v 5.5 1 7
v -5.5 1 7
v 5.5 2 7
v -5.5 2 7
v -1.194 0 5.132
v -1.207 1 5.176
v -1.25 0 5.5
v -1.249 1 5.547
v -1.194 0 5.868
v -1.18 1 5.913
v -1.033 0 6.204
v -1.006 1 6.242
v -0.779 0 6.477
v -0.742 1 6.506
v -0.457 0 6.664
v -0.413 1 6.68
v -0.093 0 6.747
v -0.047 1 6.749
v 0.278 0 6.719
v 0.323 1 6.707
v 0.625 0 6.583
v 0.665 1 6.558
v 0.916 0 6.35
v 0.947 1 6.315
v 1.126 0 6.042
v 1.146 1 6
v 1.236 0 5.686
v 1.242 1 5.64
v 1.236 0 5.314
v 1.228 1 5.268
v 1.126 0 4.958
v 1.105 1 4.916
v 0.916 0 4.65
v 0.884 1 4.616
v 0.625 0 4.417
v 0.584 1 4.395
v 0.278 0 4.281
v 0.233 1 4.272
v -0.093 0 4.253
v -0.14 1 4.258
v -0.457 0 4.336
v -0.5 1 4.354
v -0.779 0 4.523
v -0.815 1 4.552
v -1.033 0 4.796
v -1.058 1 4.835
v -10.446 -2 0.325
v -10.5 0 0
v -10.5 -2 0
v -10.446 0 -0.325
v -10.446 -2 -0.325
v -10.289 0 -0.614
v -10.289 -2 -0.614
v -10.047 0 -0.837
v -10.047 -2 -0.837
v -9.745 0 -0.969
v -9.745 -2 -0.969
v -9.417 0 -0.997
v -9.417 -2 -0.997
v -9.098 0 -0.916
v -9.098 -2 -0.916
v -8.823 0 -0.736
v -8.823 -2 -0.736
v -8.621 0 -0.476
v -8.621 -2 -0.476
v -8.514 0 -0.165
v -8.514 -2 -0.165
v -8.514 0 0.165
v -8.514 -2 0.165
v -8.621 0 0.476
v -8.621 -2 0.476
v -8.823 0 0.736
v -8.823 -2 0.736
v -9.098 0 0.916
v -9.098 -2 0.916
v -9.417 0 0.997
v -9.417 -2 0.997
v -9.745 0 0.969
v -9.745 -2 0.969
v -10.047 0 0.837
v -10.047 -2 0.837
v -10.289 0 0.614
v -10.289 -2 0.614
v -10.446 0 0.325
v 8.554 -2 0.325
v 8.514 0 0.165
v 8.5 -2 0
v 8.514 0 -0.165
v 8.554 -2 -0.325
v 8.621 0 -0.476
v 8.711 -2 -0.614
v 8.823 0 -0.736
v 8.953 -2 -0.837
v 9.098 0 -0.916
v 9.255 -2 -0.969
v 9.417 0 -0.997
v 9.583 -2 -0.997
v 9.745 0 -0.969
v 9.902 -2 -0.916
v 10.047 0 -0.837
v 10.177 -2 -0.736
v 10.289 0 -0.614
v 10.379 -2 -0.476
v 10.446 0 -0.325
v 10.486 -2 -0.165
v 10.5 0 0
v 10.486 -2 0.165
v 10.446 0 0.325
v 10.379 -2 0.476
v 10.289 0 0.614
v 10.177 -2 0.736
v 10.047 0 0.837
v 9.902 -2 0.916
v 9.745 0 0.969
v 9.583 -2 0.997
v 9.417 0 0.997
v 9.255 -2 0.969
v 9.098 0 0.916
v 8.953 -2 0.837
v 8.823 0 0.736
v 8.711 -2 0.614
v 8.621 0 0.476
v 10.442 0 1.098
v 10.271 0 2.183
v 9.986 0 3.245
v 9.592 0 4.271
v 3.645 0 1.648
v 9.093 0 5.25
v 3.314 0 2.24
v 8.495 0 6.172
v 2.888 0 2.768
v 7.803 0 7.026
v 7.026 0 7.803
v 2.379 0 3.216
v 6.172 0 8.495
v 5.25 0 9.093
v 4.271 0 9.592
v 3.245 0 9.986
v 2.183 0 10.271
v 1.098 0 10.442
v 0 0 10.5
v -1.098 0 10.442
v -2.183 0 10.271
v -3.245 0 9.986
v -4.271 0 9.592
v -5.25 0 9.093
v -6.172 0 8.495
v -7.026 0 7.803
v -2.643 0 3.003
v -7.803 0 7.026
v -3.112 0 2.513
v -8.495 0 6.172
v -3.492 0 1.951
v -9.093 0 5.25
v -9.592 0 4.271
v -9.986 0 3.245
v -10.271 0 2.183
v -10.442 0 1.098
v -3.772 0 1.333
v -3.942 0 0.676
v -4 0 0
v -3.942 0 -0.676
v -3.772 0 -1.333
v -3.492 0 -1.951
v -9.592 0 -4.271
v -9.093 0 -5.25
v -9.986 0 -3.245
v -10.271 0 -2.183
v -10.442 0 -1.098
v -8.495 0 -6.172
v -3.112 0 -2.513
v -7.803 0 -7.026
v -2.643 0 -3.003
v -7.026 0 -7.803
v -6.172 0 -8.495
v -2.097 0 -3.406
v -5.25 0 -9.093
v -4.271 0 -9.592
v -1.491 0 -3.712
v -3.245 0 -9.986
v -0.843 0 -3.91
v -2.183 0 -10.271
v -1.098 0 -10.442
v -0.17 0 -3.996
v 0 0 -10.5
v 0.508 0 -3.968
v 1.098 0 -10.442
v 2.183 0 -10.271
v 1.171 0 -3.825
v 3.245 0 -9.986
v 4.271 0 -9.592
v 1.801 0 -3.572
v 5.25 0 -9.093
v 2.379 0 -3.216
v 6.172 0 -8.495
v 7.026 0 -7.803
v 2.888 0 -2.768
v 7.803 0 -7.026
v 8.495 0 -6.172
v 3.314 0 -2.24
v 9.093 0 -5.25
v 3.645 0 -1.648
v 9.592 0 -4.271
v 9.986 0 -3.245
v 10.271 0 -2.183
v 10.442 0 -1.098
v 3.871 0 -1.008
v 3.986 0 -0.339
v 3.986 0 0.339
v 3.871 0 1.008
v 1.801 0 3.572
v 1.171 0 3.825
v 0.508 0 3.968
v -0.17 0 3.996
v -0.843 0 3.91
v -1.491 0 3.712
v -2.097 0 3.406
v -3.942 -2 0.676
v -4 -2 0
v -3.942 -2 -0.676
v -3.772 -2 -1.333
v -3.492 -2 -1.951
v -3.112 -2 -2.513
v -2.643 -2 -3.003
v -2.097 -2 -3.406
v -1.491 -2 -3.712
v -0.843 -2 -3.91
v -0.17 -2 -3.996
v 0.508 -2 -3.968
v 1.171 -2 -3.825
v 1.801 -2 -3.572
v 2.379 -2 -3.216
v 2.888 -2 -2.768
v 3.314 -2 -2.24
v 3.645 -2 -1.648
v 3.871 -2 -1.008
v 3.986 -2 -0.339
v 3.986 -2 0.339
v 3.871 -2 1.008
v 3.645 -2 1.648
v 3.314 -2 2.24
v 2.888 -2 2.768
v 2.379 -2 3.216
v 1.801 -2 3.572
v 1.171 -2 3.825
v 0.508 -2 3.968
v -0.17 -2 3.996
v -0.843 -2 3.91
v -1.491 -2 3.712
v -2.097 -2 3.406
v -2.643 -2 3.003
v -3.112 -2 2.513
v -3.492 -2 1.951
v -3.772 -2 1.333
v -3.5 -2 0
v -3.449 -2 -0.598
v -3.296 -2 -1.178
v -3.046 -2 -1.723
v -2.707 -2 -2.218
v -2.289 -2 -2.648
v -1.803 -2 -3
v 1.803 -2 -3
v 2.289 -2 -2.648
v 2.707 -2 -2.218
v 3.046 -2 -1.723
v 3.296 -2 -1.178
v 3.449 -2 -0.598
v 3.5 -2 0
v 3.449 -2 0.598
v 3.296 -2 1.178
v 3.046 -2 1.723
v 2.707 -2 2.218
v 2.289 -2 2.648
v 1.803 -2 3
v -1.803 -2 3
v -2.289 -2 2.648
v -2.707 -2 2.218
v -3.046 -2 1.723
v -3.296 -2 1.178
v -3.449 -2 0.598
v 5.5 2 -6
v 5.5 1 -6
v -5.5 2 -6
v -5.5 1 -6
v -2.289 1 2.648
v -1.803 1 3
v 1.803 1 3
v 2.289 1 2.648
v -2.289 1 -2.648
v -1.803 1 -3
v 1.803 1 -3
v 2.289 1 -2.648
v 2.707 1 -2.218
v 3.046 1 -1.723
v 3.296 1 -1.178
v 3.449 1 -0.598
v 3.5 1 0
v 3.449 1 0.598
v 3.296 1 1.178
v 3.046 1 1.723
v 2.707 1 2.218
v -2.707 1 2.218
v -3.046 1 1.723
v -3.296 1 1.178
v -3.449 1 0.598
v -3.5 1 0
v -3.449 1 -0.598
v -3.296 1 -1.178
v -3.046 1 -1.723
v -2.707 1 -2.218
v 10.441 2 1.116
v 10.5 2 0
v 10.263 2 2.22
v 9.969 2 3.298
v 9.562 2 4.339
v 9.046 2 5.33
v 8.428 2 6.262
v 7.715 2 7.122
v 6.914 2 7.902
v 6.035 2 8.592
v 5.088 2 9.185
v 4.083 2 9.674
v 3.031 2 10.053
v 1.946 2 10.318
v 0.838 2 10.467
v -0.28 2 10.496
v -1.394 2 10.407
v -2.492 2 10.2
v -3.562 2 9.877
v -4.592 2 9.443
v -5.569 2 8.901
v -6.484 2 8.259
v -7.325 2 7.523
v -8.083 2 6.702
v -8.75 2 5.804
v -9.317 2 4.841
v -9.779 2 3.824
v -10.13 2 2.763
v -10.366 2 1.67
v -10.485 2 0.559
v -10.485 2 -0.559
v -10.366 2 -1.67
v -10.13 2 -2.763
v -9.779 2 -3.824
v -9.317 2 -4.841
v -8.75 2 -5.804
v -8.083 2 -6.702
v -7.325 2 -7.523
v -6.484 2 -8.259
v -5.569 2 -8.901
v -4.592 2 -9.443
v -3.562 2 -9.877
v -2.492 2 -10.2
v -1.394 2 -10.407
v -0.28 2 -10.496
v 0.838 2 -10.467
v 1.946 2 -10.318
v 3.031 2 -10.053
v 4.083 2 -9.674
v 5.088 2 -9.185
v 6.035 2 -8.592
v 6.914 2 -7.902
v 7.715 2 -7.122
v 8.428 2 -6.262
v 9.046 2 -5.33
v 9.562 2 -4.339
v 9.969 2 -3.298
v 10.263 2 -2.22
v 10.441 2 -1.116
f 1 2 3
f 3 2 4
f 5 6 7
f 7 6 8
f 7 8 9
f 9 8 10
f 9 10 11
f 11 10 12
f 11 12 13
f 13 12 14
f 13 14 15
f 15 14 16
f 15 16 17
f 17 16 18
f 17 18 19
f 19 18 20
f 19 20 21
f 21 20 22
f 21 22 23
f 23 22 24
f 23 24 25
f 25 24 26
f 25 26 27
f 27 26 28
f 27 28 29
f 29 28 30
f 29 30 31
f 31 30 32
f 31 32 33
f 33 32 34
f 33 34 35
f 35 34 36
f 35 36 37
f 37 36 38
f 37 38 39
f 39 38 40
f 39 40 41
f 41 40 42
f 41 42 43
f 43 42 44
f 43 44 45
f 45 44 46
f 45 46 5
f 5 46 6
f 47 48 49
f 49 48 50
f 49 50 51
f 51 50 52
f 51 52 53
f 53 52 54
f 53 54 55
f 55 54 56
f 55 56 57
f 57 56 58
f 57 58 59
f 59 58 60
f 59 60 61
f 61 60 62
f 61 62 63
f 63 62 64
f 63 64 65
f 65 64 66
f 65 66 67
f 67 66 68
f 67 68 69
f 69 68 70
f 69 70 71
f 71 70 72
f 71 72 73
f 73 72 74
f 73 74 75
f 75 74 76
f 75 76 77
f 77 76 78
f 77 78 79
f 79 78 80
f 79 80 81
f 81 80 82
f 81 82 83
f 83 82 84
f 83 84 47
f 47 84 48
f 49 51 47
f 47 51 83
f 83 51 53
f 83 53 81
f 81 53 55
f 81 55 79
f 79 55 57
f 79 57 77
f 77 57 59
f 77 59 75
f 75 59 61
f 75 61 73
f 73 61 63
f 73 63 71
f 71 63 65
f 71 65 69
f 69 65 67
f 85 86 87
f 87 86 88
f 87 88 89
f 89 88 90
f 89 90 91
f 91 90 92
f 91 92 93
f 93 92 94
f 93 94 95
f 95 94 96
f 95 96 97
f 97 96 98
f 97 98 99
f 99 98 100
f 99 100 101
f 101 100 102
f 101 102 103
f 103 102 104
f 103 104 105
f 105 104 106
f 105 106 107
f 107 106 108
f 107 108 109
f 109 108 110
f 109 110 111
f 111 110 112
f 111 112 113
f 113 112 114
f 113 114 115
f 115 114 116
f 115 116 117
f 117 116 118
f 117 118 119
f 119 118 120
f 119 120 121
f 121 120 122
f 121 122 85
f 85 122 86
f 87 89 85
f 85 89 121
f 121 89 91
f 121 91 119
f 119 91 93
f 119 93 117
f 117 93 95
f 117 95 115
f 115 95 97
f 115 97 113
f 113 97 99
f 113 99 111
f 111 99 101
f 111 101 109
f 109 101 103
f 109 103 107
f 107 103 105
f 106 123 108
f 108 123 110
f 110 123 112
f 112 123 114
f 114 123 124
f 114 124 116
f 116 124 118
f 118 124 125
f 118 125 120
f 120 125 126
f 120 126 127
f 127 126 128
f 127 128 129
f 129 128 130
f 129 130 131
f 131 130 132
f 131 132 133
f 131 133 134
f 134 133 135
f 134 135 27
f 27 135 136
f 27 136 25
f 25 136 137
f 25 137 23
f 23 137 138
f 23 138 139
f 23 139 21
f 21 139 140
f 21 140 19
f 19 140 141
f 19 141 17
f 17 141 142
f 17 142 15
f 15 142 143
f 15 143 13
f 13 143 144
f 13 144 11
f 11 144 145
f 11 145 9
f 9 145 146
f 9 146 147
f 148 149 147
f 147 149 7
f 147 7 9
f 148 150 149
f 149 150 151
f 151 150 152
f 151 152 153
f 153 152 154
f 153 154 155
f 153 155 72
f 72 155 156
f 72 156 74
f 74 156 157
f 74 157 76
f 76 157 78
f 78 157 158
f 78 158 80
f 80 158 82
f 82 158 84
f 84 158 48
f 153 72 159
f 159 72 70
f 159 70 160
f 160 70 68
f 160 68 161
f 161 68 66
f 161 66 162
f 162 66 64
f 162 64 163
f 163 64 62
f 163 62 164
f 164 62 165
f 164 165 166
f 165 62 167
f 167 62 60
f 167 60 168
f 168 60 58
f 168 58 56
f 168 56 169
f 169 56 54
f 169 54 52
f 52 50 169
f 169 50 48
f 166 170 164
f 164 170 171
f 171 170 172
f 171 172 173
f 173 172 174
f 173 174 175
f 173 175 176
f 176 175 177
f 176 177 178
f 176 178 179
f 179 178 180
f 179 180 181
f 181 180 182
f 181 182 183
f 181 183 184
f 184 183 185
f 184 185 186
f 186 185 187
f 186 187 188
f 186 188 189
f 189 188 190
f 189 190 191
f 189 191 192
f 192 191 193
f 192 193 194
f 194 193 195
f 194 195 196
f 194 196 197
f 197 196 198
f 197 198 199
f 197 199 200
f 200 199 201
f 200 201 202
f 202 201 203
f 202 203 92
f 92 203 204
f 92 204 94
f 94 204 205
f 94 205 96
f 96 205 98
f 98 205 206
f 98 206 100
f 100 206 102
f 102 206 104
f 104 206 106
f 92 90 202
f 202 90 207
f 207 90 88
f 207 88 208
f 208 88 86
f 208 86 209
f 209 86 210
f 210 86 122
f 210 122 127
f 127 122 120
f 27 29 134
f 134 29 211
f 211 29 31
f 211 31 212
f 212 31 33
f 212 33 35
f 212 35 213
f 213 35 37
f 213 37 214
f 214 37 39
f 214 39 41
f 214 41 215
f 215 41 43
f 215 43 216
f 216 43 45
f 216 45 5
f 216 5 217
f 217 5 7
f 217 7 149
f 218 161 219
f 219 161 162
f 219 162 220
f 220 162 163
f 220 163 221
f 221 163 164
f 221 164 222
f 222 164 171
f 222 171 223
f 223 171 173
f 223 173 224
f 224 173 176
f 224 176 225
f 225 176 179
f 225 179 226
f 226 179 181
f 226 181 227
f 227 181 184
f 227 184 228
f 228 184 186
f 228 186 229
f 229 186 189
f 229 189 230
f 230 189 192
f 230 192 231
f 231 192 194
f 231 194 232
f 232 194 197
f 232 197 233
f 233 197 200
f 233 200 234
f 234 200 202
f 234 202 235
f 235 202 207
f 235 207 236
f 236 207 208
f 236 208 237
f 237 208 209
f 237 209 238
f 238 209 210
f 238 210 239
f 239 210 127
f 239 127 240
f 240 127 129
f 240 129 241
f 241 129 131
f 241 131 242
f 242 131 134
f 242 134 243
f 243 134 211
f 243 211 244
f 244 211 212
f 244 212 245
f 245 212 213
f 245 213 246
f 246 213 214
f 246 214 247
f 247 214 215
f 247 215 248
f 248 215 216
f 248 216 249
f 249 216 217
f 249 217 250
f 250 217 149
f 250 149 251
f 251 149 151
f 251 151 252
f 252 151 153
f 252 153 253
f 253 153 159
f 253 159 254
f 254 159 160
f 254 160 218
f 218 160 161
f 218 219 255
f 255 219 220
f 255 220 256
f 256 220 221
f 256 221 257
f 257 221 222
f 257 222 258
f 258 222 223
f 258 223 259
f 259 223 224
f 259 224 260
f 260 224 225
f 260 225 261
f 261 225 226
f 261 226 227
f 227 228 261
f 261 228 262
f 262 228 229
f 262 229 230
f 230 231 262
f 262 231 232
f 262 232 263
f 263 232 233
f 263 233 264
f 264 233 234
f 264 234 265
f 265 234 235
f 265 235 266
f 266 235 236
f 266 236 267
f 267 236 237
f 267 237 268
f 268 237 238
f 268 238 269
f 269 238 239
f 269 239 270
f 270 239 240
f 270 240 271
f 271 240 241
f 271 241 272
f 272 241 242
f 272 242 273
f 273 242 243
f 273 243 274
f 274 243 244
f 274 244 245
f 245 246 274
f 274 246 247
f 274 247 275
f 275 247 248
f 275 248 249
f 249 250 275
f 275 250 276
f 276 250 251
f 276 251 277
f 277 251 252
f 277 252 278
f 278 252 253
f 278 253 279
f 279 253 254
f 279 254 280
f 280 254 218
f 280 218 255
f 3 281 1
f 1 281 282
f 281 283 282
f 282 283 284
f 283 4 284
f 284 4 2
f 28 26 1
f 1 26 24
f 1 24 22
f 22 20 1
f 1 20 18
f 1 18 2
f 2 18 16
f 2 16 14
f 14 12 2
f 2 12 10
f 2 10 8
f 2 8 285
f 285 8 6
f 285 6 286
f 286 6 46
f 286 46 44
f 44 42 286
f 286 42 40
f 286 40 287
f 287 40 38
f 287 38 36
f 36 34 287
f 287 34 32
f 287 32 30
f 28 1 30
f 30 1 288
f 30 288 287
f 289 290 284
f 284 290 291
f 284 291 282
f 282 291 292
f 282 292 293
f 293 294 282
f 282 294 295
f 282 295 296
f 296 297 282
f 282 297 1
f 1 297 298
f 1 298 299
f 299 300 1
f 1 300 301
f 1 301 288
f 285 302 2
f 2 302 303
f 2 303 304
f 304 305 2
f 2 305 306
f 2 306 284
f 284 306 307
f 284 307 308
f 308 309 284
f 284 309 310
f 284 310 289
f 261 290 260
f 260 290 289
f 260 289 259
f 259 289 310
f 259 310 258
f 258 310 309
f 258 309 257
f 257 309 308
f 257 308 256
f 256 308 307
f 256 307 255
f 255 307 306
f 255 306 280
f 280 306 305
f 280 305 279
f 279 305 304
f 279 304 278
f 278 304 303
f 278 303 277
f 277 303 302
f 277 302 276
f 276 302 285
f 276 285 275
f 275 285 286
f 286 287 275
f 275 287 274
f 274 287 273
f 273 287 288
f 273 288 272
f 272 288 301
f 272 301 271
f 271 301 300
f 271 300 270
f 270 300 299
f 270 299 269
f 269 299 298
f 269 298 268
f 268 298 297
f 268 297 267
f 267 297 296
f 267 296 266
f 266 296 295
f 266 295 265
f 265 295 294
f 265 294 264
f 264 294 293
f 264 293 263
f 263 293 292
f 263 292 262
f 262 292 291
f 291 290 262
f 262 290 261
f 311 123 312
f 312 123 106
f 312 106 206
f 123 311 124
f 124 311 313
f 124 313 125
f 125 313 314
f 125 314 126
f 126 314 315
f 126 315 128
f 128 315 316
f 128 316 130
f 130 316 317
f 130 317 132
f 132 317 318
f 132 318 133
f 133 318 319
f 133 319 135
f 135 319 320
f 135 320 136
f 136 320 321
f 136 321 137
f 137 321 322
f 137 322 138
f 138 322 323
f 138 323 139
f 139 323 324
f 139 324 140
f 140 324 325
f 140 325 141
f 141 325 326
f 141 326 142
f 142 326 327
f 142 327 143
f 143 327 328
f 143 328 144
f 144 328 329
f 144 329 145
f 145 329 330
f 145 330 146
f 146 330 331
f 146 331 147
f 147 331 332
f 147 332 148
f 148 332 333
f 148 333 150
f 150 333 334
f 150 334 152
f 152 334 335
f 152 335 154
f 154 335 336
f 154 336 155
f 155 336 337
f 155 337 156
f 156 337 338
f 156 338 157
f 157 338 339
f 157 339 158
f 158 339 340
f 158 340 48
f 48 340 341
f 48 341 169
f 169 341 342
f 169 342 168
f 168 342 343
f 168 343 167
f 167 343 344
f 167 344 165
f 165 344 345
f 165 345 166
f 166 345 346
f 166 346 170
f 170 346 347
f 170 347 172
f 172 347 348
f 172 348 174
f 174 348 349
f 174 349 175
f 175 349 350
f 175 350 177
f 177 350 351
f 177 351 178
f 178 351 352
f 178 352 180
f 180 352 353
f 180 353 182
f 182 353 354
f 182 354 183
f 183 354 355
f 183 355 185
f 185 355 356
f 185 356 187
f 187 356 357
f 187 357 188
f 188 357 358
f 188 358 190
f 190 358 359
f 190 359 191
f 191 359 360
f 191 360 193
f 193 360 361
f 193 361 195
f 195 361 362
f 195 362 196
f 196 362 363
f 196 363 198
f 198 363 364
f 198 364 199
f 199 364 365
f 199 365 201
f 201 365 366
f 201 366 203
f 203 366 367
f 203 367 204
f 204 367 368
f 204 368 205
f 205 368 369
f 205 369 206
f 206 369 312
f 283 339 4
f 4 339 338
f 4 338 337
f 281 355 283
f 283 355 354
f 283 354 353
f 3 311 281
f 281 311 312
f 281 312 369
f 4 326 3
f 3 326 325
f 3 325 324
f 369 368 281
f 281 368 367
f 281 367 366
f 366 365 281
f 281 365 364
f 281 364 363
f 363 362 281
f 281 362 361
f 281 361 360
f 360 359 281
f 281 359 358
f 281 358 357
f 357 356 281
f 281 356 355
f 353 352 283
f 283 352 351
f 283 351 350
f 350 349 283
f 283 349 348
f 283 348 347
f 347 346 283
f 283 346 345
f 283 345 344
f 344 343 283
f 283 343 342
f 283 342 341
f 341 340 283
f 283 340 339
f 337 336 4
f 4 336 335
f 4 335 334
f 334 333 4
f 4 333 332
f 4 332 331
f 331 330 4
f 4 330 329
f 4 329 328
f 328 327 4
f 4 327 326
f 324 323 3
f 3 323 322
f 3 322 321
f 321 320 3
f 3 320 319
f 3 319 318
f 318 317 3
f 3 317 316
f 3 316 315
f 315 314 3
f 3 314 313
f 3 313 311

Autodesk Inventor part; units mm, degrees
ref_plane "YZ Plane" through (0, 0, 0) normal (1, 0, 0) x (0, 1, 0)
ref_plane "XZ Plane" through (0, 0, 0) normal (0, 1, 0) x (-1, 0, 0)
ref_plane "XY Plane" through (0, 0, 0) normal (0, 0, 1) x (1, 0, 0)
sketch "Эскиз1" plane through (0, 0, 0) normal (0, 1, 0) x (-1, 0, 0)
  circle A0 centre (0, 0) radius 10.5
  circle A1 centre (0, 0) radius 4
  line L0 (0, -3) -> (0, 3) construction
  line L1 (1.8028, -3) -> (-1.8028, -3)
  line L2 (-1.8028, 3) -> (1.8028, 3)
  circle A2 centre (0, 5.5) radius 1.25
  circle A3 centre (9.5, 0) radius 1
  circle A4 centre (-9.5, 0) radius 1
  line L3 (5.5, -6) -> (-5.5, -6)
  line L4 (-5.5, -6) -> (-5.5, 6)
  line L5 (5.5, 6) -> (5.5, -6)
  line L6 (5.5, -6) -> (-5.5, 6) construction
  line L7 (0, 10.5) -> (0, -10.5) construction
  arc A5 (1.8028, -3) -> (1.8028, 3) centre (0, 0) ccw
  arc A6 (-1.8028, 3) -> (-1.8028, -3) centre (0, 0) ccw
  arc A7 (1.8028, -3) -> (1.8028, 3) centre (0, 0) ccw
  arc A8 (-1.8028, 3) -> (-1.8028, -3) centre (0, 0) ccw
  line L8 (-5.5, 6) -> (-1.1456, 6)
  line L9 (1.1456, 6) -> (5.5, 6)
  line L10 (5.5, 6) -> (-5.5, 6)
  line L11 (-5.5, 6) -> (-5.5, 7)
  line L12 (-5.5, 7) -> (5.5, 7)
  line L13 (5.5, 7) -> (5.5, 6)
  dimension "d0" = 21
  dimension "d1" = 8
  dimension "d3" = 6
  dimension "d4" = 2.5
  dimension "d5" = 2.5
  dimension "d6" = 2
  dimension "d7" = 2
  dimension "d8" = 11
  dimension "d9" = 12
  dimension "d18" = 1
extrude "Выдавливание1" add sketch "Эскиз1" along normal blind 1 contours A4 | A0 | A3 | A1 | A2 L9 L5 L3 L4 L8 | A2 L8 L11 L12 L13 L9
extrude "Выдавливание2" add sketch "Эскиз1" along normal blind 1 from surface at 1 contours A4 | A0 | A3 | A2 L8 L11 L12 L13 L9
extrude "Выдавливание3" add sketch "Эскиз1" against normal blind 2 contours A1
extrude "Выдавливание4" add sketch "Эскиз1" against normal blind 2 contours A4 | A3
extrude "Выдавливание5" cut sketch "Эскиз1" against normal up to surface (1 mm away) from surface at 2 contours A2 L8 L11 L12 L13 L9
properties part number "Switch1"
